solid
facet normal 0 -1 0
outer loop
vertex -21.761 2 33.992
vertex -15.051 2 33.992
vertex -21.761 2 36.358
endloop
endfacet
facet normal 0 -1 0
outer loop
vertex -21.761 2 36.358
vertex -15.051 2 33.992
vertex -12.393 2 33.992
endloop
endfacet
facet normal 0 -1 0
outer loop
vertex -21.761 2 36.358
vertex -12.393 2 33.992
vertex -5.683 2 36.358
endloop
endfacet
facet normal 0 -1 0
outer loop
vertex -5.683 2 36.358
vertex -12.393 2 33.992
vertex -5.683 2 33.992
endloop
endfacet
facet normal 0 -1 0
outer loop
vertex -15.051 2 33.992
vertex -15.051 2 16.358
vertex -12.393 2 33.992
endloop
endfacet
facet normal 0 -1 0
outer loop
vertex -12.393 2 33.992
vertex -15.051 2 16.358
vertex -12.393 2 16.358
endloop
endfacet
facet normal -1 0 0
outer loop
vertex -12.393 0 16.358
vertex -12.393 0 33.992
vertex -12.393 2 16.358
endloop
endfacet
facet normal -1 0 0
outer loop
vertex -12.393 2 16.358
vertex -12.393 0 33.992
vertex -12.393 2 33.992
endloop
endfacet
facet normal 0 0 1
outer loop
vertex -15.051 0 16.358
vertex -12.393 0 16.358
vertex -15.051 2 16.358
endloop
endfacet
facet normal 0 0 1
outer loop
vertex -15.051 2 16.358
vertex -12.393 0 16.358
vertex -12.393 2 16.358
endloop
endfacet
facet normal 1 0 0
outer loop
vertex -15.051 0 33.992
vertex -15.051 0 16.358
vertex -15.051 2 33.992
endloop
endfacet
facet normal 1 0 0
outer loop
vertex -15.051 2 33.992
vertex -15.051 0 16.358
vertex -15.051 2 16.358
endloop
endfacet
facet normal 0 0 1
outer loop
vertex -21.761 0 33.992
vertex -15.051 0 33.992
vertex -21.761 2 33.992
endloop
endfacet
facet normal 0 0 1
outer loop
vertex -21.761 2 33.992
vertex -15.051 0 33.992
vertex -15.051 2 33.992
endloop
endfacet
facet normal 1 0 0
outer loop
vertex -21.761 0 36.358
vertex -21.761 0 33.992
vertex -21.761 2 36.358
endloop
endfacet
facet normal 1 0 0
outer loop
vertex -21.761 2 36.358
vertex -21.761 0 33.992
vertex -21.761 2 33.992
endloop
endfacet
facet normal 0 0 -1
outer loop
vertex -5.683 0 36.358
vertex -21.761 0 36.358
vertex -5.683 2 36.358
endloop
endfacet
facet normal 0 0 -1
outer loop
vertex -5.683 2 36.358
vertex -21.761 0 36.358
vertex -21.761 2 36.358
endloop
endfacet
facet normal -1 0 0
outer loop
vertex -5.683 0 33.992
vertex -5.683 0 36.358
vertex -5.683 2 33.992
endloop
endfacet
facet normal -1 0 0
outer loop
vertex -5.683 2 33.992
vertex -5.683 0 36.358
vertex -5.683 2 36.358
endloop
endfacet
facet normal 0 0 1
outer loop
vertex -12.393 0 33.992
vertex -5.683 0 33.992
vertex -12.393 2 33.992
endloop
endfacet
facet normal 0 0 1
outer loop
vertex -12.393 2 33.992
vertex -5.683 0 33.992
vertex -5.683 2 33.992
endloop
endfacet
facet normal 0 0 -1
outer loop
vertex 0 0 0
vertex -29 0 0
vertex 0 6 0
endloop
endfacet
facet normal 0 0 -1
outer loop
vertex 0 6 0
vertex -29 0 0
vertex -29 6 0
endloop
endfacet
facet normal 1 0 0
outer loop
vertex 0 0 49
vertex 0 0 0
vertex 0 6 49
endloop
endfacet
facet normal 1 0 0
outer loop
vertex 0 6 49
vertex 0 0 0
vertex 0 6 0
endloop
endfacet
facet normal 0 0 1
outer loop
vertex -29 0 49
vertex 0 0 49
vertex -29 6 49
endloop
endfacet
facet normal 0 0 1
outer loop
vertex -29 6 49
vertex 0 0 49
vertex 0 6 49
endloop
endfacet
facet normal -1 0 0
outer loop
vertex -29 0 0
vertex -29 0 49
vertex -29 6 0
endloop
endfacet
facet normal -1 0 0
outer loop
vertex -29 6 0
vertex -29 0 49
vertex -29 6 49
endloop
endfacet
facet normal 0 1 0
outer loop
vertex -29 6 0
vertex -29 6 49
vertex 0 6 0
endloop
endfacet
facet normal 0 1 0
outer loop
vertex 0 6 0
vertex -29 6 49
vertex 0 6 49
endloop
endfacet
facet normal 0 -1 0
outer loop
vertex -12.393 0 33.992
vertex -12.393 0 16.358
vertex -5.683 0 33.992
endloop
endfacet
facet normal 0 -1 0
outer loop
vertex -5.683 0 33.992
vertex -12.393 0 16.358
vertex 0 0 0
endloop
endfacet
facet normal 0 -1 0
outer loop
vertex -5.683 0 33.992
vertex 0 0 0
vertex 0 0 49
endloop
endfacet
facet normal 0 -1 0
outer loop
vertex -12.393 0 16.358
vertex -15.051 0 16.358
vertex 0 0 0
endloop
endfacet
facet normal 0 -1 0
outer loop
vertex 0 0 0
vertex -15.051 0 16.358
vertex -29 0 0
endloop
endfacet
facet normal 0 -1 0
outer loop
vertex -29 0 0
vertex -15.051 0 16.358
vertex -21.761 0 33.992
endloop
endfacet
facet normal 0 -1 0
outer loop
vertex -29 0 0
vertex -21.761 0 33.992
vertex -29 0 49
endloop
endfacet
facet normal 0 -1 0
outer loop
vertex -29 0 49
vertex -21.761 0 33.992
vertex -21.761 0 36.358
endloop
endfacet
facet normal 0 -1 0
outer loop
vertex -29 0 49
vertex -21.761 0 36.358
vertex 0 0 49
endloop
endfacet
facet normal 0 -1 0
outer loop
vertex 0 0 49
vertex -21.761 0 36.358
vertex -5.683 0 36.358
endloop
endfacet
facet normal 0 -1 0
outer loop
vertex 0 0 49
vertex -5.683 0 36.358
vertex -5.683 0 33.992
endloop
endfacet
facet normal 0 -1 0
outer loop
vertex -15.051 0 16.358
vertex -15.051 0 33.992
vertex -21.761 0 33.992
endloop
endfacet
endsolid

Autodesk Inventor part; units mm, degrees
ref_plane "YZ Plane" through (0, 0, 0) normal (1, 0, 0) x (0, 1, 0)
ref_plane "XZ Plane" through (0, 0, 0) normal (0, 1, 0) x (-1, 0, 0)
ref_plane "XY Plane" through (0, 0, 0) normal (0, 0, 1) x (1, 0, 0)
sketch "Sketch1" plane through (0, 0, 0) normal (0, 1, 0) x (-1, 0, 0)
  line L0 (0, 0) -> (29, 0)
  line L1 (29, 0) -> (29, 49)
  line L2 (29, 49) -> (0, 49)
  line L3 (0, 49) -> (0, 0)
  dimension "d0" = 49
  dimension "d1" = 29
extrude "Extrusion1" add sketch "Sketch1" along normal blind 6
sketch "Sketch2" plane through (0, 0, 0) normal (0, -1, 0) x (1, 0, 0)
  line L0 (-21.7451, 36.3583) -> (64.7541, 36.3583) construction
  line L1 (64.7541, 36.3583) -> (64.7541, 15.5155) construction
  line L2 (64.7541, 15.5155) -> (-21.7451, 15.5155) construction
  line L3 (-21.7451, 15.5155) -> (-21.7451, 36.3583) construction
  line L4 (-15.0514, 16.3583) -> (-15.0514, 33.992)
  line L5 (-15.0514, 33.992) -> (-21.7613, 33.992)
  line L6 (-21.7613, 33.992) -> (-21.7613, 36.3583)
  line L7 (-21.7613, 36.3583) -> (-5.6835, 36.3583)
  line L8 (-5.6835, 36.3583) -> (-5.6835, 33.992)
  line L9 (-5.6835, 33.992) -> (-12.3934, 33.992)
  line L10 (-12.3934, 33.992) -> (-12.3934, 16.3583)
  line L11 (-12.3934, 16.3583) -> (-15.0514, 16.3583)
  point P0 (0, 0)
emboss "Emboss1" sketch "Sketch2" operation cut depth 2 direction (0, 1, 0)
properties part number "pegshort" material "PET Plastic"
